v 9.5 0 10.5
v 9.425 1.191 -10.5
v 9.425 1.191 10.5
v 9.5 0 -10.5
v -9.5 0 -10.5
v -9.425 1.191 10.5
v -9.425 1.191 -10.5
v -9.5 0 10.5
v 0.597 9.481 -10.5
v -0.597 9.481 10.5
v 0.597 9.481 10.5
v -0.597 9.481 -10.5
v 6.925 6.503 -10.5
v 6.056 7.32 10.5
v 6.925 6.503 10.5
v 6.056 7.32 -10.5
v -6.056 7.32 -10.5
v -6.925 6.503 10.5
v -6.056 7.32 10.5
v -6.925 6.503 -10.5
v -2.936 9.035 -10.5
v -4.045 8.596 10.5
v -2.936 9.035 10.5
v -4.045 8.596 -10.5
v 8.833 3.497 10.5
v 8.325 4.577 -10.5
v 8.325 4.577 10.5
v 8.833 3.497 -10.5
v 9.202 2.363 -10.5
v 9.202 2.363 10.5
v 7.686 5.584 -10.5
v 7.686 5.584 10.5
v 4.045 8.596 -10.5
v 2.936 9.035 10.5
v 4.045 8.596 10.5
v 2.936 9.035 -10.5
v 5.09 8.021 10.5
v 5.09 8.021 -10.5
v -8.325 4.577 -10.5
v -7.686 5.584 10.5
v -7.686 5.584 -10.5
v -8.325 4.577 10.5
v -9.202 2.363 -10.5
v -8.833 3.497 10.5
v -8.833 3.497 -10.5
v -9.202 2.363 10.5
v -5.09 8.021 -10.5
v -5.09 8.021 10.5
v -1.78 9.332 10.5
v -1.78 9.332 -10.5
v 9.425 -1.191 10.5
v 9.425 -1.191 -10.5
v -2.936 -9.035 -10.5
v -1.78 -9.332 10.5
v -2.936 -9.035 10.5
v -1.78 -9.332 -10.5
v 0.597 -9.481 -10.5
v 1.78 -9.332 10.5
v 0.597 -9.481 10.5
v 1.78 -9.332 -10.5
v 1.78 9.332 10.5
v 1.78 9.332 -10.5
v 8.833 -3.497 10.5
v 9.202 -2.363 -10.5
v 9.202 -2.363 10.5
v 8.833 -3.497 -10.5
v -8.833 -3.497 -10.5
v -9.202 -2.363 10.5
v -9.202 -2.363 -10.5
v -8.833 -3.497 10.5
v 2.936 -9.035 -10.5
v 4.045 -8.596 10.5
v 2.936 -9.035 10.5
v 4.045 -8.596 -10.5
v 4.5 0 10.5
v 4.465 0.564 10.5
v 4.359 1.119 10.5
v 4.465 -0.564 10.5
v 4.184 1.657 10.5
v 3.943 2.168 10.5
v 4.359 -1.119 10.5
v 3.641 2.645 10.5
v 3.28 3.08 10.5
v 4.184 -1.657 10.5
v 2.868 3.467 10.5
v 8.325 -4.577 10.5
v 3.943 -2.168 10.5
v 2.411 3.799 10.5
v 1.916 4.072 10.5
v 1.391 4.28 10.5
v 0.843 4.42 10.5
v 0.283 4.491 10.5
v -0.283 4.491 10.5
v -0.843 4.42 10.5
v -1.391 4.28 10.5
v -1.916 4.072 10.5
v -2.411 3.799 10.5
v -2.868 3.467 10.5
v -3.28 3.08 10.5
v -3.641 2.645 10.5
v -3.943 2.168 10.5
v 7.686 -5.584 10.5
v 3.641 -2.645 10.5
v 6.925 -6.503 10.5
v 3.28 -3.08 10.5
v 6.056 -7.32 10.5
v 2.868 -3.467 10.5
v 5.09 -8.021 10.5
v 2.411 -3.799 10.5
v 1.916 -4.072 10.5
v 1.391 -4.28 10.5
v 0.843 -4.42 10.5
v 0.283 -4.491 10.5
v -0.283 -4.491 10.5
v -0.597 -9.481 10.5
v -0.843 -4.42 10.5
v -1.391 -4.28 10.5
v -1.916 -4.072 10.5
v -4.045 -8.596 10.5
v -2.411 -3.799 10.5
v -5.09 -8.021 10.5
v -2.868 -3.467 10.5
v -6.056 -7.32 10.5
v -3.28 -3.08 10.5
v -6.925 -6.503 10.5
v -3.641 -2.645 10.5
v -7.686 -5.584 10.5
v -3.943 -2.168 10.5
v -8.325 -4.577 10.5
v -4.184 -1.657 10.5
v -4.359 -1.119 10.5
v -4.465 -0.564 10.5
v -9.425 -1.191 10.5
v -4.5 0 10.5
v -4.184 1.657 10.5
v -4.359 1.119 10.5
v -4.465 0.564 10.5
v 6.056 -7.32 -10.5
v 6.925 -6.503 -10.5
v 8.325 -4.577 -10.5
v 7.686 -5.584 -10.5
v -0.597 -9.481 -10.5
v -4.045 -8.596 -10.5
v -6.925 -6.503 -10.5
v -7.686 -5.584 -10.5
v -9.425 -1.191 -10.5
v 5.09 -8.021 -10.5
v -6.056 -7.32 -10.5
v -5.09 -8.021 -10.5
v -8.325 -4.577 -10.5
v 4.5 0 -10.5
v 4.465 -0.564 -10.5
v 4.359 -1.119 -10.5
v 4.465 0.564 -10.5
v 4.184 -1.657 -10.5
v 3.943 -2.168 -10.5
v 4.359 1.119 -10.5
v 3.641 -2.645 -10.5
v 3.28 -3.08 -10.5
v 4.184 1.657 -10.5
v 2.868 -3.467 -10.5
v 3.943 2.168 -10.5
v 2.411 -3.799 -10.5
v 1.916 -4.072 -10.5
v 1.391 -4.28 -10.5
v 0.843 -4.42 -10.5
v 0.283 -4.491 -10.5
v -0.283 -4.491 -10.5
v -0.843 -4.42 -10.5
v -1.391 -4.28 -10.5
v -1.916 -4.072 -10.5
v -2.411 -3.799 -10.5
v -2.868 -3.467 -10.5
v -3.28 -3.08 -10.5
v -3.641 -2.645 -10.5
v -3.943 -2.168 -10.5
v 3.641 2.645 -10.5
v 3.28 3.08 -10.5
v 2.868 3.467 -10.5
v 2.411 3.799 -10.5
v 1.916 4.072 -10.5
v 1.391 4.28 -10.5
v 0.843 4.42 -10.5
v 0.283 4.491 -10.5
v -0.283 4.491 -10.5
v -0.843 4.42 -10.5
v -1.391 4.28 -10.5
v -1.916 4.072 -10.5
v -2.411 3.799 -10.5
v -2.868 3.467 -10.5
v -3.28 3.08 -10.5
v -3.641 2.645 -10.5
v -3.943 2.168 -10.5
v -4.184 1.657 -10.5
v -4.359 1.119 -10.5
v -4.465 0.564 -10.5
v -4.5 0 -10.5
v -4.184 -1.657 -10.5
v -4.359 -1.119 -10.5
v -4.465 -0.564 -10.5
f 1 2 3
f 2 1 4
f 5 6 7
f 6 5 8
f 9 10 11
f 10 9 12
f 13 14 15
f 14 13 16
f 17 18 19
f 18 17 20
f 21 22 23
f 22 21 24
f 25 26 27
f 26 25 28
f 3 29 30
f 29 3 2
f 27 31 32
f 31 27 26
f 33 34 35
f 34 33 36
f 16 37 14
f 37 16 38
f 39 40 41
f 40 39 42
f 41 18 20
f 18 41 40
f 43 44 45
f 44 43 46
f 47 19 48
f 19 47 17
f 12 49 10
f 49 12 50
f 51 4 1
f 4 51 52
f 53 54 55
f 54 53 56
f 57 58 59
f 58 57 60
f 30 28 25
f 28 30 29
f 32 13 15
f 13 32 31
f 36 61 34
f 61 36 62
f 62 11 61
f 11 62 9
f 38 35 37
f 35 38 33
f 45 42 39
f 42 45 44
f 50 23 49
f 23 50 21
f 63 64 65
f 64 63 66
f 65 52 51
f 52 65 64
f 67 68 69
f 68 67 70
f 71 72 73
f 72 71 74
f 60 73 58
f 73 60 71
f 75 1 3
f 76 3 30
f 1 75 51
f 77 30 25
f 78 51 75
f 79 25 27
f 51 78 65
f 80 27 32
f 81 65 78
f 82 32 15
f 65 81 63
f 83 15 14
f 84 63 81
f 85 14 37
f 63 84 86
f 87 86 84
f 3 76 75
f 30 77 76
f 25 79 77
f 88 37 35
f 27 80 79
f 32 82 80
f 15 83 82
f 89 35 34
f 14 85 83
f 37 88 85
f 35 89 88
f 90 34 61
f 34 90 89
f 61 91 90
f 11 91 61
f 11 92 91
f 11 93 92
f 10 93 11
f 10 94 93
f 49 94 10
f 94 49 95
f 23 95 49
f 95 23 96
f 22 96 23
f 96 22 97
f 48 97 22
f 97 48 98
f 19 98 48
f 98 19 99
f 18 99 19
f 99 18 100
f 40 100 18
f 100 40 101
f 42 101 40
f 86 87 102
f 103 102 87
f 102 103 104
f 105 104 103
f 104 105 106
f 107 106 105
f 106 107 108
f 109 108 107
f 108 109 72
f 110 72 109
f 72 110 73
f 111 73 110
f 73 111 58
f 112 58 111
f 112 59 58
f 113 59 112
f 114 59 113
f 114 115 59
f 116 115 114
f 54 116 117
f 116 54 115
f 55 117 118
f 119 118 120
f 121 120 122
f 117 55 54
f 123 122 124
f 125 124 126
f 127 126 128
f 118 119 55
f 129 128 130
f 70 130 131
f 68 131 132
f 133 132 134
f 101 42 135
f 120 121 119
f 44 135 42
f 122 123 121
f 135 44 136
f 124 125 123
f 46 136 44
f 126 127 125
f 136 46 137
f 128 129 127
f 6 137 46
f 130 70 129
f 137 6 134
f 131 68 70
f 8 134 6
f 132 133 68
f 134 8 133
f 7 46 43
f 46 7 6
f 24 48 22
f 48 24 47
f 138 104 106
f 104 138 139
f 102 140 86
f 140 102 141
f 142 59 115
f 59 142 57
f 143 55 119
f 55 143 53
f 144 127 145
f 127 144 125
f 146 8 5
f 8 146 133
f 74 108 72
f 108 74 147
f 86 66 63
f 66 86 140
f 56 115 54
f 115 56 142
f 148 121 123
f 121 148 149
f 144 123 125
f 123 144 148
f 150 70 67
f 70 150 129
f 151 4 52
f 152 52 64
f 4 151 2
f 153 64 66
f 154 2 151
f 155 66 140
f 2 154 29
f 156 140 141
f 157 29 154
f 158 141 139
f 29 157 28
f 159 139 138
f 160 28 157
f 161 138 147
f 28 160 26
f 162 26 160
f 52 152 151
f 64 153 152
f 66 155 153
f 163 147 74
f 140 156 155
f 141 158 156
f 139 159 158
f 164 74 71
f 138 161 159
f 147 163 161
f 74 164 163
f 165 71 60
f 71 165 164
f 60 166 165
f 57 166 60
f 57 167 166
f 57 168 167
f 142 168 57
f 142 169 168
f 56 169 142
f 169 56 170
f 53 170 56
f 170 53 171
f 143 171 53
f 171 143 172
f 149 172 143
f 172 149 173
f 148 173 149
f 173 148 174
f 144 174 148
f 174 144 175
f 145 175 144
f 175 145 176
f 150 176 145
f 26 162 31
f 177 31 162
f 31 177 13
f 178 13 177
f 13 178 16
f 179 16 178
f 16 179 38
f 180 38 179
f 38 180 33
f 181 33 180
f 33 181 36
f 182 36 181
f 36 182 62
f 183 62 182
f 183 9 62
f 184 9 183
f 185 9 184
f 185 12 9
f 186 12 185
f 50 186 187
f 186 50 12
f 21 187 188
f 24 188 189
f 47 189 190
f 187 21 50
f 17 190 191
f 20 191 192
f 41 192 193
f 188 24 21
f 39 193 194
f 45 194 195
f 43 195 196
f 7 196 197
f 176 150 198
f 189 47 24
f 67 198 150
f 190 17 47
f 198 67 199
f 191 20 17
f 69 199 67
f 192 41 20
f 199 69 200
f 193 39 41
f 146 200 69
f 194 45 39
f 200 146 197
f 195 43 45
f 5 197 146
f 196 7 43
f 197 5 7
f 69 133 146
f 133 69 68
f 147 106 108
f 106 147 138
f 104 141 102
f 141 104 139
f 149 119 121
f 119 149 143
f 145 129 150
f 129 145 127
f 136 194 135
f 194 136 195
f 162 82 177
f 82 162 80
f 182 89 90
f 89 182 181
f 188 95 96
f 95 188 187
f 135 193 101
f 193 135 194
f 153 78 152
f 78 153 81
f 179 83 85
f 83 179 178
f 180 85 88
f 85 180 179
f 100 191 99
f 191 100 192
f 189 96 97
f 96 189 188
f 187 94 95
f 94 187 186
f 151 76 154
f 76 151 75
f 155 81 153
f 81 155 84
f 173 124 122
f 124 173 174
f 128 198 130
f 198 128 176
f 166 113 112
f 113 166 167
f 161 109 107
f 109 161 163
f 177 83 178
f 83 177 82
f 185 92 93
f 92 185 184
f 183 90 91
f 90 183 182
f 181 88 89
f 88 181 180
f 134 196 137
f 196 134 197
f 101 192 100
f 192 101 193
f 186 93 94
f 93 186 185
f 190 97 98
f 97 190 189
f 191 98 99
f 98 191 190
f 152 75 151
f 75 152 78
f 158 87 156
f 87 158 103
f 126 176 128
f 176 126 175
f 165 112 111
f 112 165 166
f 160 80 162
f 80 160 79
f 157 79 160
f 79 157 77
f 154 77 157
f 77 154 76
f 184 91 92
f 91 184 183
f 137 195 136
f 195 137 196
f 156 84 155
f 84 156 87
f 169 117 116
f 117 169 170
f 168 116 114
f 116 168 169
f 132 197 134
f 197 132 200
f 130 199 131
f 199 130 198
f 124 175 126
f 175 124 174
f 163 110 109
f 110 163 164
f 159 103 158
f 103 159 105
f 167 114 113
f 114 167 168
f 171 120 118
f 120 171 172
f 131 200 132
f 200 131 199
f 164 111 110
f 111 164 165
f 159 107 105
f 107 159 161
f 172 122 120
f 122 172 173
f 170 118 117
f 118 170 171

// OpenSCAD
$fn = 50;


difference() {
	union() {
		translate(v = [0, 0, -10.5000000000]) {
			cylinder(h = 21, r = 9.5000000000);
		}
	}
	union() {
		translate(v = [0, 0, -100.0000000000]) {
			cylinder(h = 200, r = 4.5000000000);
		}
	}
}
